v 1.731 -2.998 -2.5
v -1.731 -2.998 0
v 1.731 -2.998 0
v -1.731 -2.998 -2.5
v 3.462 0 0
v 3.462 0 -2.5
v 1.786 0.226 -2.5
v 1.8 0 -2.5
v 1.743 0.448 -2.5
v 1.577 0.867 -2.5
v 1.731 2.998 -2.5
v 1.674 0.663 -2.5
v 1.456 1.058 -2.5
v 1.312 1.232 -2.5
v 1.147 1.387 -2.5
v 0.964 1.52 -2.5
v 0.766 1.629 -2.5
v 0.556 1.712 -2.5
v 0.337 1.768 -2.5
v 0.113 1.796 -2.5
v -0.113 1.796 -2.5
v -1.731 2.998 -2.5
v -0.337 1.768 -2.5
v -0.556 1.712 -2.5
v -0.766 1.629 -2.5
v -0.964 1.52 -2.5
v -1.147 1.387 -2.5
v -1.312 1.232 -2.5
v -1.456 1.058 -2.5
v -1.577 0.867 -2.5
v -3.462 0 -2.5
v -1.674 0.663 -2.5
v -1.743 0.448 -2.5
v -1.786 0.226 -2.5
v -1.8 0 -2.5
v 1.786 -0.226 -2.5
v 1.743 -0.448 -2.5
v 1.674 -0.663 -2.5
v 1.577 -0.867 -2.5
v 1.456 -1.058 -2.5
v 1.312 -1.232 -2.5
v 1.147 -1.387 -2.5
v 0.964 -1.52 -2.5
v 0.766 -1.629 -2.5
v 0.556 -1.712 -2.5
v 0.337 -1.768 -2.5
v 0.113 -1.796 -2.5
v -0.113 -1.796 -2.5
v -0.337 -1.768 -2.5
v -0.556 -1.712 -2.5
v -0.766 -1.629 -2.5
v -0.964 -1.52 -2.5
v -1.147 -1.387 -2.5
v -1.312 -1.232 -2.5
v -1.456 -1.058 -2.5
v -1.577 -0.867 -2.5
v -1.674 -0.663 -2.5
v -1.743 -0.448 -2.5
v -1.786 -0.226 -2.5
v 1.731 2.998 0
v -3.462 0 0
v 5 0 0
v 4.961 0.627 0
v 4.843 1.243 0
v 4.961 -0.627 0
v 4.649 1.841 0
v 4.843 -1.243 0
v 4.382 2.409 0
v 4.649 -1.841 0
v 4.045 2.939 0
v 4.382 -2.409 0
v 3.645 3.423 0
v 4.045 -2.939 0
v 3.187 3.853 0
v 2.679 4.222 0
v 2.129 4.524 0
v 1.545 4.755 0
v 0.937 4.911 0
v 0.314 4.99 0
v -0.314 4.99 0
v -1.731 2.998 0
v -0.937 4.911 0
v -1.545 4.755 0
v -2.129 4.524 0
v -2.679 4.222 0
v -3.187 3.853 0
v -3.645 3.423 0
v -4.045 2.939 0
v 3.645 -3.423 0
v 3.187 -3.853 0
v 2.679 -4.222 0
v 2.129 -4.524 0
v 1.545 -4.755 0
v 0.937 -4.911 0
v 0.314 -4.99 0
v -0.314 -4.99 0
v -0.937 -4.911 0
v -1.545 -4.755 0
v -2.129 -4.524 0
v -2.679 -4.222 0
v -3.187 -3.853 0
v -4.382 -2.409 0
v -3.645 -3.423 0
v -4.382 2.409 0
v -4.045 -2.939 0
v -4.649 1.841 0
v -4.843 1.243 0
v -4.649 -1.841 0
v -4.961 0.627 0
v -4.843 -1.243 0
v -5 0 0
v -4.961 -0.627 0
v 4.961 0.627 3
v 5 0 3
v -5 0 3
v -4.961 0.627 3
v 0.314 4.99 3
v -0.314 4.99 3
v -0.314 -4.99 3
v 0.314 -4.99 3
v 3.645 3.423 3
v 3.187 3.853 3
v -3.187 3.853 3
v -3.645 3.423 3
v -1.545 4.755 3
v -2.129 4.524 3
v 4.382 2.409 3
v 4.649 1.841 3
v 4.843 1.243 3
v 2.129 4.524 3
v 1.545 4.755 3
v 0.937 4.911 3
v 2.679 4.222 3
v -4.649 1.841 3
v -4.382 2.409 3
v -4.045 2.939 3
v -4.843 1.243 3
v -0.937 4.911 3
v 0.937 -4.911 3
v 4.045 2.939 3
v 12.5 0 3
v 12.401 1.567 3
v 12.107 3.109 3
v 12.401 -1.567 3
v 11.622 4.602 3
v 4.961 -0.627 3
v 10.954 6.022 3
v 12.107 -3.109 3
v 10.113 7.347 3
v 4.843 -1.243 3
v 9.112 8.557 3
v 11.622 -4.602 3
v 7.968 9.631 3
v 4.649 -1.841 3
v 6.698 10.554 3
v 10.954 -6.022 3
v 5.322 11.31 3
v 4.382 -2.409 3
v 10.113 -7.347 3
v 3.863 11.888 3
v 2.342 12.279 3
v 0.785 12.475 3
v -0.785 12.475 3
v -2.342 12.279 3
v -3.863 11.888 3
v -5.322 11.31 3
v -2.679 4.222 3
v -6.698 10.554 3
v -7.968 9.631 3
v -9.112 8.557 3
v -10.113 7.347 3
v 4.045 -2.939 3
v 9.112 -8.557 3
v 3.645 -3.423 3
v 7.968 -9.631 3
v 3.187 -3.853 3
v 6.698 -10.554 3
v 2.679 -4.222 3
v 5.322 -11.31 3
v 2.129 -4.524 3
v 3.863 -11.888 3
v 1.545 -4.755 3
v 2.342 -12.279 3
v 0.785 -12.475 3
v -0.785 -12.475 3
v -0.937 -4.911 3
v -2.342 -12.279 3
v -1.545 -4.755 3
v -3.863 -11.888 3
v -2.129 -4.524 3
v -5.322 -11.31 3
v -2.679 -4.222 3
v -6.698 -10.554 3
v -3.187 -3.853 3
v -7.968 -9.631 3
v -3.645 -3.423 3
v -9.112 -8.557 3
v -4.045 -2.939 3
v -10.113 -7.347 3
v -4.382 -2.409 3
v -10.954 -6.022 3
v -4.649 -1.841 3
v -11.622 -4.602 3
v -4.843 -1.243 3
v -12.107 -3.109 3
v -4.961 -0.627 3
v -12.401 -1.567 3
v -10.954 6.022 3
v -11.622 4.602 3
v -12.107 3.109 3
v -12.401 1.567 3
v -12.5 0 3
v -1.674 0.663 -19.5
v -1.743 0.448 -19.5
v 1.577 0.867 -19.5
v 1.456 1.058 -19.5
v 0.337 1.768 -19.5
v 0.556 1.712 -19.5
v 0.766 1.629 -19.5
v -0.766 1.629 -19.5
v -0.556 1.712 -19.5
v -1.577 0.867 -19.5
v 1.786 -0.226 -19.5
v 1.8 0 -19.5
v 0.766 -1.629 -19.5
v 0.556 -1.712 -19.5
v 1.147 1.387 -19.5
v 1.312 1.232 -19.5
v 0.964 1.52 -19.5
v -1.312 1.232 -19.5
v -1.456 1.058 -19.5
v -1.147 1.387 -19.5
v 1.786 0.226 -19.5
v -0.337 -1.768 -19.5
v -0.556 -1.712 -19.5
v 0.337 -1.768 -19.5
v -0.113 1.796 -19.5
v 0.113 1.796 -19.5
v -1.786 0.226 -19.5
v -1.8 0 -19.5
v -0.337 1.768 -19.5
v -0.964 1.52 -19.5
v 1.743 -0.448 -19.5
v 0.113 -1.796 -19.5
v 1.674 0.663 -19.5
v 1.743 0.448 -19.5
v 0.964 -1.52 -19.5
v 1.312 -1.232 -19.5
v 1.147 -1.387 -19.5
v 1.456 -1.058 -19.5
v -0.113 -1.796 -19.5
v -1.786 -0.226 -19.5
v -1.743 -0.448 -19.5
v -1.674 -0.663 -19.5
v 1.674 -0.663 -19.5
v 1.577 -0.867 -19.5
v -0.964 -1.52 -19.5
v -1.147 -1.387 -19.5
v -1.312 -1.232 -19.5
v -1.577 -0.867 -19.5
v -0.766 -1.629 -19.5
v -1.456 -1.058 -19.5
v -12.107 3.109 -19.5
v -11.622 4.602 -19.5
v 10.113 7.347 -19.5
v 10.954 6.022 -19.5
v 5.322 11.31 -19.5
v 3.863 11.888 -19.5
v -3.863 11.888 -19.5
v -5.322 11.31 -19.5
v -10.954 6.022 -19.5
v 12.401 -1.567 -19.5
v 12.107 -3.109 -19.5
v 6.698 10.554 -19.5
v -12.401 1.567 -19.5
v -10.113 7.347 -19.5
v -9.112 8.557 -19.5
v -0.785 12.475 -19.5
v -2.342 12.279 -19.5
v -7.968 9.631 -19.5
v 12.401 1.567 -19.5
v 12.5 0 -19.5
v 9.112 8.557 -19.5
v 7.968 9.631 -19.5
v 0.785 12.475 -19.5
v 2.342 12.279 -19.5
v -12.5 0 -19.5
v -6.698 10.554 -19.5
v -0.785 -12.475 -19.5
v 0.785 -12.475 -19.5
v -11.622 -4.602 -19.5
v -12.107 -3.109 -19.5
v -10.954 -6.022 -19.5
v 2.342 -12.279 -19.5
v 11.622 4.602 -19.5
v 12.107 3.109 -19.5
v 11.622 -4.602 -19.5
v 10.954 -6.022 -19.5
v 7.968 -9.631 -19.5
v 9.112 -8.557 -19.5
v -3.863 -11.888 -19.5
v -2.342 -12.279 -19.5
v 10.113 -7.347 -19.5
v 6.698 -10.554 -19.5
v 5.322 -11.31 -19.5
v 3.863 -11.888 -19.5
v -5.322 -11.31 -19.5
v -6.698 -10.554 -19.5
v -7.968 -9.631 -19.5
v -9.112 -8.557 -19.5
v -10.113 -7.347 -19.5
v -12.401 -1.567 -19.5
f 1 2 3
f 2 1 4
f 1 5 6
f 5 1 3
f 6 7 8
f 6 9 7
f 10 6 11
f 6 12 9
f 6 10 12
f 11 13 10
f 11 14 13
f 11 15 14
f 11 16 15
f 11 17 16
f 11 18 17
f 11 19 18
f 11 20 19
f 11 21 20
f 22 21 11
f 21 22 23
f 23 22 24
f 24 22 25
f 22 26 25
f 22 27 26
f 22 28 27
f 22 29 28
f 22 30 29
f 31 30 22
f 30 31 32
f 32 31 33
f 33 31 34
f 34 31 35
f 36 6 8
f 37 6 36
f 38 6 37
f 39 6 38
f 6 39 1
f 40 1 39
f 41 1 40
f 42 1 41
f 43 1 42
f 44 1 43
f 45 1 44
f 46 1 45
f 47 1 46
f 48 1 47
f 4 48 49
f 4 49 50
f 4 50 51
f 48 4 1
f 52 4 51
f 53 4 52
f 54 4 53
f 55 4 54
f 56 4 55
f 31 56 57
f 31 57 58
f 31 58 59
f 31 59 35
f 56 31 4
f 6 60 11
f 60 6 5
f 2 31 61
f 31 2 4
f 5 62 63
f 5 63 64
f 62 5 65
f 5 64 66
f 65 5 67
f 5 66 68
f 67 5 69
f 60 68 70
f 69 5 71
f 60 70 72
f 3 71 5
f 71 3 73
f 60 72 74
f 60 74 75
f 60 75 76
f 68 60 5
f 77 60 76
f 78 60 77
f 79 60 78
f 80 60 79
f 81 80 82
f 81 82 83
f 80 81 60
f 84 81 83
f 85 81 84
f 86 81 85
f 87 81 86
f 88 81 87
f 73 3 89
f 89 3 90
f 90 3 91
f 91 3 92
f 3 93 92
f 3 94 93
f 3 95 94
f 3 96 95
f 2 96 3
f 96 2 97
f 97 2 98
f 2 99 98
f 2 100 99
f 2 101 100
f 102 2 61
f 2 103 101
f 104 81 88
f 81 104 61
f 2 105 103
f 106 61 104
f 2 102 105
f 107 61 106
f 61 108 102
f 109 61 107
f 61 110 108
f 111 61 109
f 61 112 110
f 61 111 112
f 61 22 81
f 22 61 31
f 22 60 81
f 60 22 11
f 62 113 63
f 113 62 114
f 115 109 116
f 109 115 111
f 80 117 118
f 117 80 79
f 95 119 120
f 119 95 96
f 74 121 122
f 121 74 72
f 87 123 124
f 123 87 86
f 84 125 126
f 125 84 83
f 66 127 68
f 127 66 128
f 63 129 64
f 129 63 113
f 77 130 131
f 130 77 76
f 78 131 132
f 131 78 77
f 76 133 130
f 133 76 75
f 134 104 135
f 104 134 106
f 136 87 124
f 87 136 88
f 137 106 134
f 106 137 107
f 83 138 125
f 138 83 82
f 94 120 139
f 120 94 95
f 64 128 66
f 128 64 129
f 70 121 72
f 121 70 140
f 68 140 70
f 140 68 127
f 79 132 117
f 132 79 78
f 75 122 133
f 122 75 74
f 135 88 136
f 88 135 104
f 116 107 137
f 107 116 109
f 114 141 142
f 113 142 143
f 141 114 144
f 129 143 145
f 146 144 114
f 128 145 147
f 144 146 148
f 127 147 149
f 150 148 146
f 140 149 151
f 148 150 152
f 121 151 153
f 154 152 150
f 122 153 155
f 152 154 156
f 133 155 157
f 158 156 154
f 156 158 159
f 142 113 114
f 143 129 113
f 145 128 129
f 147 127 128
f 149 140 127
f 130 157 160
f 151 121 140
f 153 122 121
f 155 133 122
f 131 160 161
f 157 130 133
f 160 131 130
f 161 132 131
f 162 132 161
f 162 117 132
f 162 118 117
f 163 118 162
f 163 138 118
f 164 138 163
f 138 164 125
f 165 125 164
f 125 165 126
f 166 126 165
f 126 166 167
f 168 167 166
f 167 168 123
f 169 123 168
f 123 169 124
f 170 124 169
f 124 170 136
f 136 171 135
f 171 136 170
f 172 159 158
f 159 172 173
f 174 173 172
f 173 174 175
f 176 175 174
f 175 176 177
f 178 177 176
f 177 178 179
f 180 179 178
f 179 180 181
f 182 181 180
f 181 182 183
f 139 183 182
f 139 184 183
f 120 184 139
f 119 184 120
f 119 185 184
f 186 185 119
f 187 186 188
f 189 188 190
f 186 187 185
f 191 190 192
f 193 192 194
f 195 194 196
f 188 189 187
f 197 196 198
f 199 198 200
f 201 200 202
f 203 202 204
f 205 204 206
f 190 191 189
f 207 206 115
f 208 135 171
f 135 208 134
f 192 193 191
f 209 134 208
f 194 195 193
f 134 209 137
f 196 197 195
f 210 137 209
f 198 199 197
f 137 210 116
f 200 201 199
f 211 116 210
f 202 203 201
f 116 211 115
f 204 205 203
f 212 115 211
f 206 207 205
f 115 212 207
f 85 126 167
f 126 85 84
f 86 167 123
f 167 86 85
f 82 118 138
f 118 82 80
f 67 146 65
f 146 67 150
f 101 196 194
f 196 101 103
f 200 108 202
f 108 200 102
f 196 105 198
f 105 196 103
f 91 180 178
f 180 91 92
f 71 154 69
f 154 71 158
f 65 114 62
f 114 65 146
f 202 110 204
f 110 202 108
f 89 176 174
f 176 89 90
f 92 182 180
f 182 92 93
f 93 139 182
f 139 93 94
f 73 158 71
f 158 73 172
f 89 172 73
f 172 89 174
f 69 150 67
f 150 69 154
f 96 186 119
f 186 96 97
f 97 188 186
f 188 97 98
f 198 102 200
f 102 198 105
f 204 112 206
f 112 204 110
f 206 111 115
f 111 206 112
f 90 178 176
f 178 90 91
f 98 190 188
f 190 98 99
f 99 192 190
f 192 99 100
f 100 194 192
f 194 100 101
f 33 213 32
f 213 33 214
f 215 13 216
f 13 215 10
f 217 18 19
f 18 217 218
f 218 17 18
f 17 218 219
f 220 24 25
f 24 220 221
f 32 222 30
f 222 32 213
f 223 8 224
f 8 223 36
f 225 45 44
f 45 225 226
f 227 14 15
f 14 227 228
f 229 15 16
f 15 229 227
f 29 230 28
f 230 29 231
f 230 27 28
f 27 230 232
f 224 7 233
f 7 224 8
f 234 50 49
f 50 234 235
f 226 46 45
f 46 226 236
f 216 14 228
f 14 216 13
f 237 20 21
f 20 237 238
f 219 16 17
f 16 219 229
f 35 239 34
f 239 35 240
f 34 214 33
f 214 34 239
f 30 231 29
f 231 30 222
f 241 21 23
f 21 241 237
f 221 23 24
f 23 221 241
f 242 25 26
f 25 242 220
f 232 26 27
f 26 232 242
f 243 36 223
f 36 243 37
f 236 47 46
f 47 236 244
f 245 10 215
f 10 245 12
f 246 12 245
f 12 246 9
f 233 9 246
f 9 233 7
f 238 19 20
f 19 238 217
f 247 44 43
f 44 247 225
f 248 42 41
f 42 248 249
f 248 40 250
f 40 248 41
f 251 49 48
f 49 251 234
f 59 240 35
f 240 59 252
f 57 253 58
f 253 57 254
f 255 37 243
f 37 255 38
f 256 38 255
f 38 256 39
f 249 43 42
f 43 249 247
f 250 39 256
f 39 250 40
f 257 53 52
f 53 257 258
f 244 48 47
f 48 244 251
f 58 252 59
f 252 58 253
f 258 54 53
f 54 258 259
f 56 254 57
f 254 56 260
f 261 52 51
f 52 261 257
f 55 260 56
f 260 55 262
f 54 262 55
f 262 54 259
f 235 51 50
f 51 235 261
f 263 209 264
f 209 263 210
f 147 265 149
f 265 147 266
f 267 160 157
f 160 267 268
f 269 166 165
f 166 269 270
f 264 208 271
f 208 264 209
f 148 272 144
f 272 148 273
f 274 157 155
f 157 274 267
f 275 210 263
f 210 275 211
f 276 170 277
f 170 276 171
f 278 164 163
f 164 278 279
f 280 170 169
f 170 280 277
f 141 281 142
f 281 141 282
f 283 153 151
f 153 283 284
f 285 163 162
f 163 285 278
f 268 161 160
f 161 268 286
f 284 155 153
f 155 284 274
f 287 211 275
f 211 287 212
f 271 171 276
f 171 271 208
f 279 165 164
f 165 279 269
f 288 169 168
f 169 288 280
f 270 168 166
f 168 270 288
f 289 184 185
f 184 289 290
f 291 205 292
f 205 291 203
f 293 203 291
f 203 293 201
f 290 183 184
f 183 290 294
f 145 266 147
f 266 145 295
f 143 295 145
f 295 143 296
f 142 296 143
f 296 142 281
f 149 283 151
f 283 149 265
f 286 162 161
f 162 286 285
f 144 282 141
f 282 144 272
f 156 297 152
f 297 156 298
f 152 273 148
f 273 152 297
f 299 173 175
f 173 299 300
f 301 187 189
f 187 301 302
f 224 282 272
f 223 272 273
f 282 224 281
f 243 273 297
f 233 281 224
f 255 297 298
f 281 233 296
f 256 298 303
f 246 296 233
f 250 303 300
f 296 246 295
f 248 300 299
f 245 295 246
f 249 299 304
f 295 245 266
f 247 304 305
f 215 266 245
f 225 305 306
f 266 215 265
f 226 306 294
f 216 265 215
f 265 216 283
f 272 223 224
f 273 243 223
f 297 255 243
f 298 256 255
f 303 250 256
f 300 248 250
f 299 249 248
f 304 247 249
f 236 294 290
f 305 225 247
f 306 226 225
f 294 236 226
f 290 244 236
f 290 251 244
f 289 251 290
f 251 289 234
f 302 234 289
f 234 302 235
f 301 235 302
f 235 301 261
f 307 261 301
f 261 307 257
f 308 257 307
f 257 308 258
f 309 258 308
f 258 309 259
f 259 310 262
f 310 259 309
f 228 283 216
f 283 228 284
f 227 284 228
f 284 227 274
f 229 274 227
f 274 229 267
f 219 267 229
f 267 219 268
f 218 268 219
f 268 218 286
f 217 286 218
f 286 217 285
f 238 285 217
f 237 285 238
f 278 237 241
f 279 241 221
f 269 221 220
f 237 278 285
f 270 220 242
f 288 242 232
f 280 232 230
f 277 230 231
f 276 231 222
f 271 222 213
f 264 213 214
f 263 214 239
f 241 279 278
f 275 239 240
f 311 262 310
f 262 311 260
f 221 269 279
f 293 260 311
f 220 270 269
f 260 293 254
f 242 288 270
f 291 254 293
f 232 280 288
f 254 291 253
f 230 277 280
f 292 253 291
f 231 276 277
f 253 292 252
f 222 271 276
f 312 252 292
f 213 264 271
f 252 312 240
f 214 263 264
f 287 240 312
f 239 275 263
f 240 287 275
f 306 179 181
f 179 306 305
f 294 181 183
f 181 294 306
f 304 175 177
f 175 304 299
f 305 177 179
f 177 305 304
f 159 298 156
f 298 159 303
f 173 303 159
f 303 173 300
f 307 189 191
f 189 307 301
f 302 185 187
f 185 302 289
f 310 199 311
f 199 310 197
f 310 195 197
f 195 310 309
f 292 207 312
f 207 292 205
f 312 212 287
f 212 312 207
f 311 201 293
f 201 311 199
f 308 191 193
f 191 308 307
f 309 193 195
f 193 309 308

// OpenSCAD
$fn = 50;


difference() {
	union() {
		translate(v = [0, 0, -19.5000000000]) {
			cylinder(h = 22.5000000000, r = 12.5000000000);
		}
	}
	union() {
		translate(v = [0, 0, 0]) {
			rotate(a = [0, 0, 0]) {
				difference() {
					union() {
						translate(v = [0, 0, -2.5000000000]) {
							linear_extrude(height = 2.5000000000) {
								polygon(points = [[3.4620000000, 0.0000000000], [1.7310000000, 2.9981799479], [-1.7310000000, 2.9981799479], [-3.4620000000, 0.0000000000], [-1.7310000000, -2.9981799479], [1.7310000000, -2.9981799479]]);
							}
						}
					}
					union();
				}
			}
		}
		#cylinder(h = 3, r = 5.0000000000);
		#translate(v = [0, 0, -100.0000000000]) {
			cylinder(h = 200, r = 1.8000000000);
		}
	}
}
